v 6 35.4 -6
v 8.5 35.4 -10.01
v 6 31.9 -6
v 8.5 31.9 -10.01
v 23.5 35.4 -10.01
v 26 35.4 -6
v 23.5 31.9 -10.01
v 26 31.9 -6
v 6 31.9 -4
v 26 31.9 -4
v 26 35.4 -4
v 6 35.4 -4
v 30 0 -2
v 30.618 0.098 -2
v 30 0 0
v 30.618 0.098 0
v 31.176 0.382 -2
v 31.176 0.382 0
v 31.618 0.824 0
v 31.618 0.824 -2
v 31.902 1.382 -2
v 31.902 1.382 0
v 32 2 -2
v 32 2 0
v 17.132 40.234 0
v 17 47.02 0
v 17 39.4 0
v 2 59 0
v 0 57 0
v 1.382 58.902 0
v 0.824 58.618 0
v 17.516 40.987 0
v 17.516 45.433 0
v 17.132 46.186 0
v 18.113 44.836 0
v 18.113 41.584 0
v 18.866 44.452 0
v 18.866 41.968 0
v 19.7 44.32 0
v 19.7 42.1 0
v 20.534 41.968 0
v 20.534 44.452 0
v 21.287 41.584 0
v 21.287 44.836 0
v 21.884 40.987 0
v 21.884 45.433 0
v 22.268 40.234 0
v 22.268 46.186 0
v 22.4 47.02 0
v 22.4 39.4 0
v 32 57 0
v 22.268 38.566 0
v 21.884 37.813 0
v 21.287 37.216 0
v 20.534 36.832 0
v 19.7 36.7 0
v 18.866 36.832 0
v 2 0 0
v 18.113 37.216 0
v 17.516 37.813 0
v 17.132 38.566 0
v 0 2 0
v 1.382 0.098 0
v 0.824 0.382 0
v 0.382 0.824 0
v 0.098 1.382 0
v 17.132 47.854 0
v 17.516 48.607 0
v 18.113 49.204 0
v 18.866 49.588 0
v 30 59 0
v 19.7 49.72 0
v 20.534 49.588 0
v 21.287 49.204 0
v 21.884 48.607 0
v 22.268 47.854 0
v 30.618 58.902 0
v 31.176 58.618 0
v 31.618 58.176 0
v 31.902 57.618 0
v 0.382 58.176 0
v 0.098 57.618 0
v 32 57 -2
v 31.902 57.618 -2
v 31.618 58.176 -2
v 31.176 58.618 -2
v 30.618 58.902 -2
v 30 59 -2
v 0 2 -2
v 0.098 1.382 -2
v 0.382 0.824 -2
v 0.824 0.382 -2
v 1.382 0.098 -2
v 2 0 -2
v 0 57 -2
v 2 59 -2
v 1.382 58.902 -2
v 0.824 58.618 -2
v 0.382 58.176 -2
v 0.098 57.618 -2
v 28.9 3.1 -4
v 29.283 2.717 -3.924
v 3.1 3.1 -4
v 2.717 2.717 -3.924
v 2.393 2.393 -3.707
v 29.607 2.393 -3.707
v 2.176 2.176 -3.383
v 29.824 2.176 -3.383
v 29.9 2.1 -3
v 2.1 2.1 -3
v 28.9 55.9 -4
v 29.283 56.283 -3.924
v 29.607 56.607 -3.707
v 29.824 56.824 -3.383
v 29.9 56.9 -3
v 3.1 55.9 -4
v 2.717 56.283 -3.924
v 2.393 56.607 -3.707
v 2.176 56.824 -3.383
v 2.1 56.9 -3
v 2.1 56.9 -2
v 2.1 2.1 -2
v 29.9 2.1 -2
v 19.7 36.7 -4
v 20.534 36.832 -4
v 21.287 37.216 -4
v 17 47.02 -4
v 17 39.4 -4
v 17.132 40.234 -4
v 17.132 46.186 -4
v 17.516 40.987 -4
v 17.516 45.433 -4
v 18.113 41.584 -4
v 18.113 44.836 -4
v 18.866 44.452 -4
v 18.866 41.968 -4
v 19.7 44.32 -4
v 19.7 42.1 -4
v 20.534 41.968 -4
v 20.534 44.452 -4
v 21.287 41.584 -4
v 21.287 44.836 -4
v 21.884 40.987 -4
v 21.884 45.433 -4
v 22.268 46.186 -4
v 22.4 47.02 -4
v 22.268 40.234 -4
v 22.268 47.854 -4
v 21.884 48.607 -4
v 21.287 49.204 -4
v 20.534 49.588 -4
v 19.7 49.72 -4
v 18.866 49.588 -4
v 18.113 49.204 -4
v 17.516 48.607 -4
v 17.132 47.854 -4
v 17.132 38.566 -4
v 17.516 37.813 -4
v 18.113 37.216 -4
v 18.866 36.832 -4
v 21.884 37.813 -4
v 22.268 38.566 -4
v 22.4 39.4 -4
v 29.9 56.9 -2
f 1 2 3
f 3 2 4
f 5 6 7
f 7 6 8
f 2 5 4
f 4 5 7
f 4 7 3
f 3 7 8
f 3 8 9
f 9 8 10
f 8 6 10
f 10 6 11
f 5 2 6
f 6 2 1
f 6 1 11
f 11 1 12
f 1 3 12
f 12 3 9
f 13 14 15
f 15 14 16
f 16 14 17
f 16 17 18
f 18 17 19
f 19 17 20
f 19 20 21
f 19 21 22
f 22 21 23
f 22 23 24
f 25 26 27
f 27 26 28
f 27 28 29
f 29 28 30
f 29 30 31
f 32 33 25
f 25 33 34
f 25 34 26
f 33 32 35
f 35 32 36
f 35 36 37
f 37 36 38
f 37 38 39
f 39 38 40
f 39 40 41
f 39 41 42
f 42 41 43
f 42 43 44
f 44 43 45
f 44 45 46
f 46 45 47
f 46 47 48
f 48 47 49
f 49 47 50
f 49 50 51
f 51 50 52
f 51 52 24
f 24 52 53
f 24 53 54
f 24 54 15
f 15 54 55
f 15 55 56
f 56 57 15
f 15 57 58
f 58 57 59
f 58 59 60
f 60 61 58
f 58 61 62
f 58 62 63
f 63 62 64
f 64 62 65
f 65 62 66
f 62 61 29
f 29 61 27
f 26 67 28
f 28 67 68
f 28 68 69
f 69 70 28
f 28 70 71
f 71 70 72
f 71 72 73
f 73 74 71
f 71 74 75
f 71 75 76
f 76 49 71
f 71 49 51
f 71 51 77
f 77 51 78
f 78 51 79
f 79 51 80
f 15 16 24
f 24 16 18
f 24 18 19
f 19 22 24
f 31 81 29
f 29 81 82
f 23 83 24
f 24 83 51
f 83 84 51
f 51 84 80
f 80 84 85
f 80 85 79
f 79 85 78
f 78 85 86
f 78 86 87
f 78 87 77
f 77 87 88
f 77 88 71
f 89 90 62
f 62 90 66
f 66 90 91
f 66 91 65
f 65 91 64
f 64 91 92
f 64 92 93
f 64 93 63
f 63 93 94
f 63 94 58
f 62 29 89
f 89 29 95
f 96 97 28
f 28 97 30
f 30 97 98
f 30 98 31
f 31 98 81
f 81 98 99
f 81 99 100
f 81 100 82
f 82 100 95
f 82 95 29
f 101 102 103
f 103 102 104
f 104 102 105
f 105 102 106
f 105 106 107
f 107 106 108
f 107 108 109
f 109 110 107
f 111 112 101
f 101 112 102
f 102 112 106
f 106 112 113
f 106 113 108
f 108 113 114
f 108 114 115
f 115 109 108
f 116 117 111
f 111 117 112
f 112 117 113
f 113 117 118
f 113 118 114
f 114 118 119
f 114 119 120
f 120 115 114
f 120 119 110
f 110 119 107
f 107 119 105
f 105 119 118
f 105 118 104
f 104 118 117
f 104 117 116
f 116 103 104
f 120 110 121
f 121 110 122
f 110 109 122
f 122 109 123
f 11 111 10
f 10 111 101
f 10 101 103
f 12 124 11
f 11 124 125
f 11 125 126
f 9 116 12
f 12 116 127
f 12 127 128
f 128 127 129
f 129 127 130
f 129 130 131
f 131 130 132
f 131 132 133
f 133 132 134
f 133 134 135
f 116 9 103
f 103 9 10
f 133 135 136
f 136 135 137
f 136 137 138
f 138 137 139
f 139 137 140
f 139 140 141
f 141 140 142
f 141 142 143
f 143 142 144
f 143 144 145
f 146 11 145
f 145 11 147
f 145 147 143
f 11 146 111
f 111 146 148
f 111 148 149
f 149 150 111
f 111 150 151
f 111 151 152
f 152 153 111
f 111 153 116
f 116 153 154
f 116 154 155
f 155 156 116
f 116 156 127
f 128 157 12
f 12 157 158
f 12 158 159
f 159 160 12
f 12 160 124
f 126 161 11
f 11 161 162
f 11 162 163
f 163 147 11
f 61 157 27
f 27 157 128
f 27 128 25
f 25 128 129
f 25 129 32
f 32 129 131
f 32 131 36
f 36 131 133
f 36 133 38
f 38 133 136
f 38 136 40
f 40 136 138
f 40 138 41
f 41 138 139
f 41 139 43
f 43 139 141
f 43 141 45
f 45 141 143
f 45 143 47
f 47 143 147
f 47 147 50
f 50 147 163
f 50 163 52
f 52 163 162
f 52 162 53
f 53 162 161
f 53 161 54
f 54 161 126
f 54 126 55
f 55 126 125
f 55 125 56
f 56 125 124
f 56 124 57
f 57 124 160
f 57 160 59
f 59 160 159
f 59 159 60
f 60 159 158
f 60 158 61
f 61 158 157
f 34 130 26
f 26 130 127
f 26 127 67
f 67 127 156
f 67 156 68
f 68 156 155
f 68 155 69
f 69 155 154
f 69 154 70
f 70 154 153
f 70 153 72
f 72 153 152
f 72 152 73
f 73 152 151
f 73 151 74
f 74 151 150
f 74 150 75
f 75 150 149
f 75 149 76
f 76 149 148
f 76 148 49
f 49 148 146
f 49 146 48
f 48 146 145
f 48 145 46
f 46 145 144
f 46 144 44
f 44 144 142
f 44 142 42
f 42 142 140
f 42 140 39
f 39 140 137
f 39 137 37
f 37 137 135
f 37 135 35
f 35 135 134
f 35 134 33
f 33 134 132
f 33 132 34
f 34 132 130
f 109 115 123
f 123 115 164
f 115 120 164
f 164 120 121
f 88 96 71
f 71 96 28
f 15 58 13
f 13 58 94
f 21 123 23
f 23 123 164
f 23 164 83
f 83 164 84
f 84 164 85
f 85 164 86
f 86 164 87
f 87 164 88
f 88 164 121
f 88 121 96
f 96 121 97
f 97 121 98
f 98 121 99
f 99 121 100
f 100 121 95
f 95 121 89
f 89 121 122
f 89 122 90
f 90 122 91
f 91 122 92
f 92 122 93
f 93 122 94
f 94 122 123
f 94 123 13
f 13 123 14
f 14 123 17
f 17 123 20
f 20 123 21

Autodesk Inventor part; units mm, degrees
ref_plane "YZ Plane" through (0, 0, 0) normal (1, 0, 0) x (0, 1, 0)
ref_plane "XZ Plane" through (0, 0, 0) normal (0, 1, 0) x (-1, 0, 0)
ref_plane "XY Plane" through (0, 0, 0) normal (0, 0, 1) x (1, 0, 0)
sketch "Skizze1" plane through (0, 0, 0) normal (0, 0, 1) x (1, 0, 0)
  line L0 (0, 0) -> (32, 0)
  line L1 (32, 0) -> (32, 59)
  line L2 (32, 59) -> (0, 59)
  line L3 (0, 59) -> (0, 0)
  dimension "d0" = 32
  dimension "d1" = 59
extrude "Extrusion1" add sketch "Skizze1" against normal blind 2
sketch "Skizze2" plane through (0, 0, -2) normal (0, 0, -1) x (-1, 0, 0)
  line L0 (-2.1, 2.1) -> (-29.9, 2.1)
  line L1 (-29.9, 2.1) -> (-29.9, 56.9)
  line L2 (-29.9, 56.9) -> (-2.1, 56.9)
  line L3 (-2.1, 56.9) -> (-2.1, 2.1)
  line L4 (0, 0) -> (0, 59) construction
  line L5 (-32, 0) -> (0, 0) construction
  point P0 (-2.1, 29.5)
  point P1 (0, 29.5)
  point P2 (-16, 2.1)
  point P3 (-16, 0)
  dimension "d4" = 2.1
  dimension "d5" = 2.1
extrude "Extrusion2" add sketch "Skizze2" along normal blind 2
sketch "Skizze3" plane through (0, 0, -4) normal (0, 0, -1) x (-1, 0, 0)
  circle A0 centre (-19.7, 39.4) radius 2.7
  line L0 (-32, 0) -> (0, 0) projected
  line L1 (-2.1, 2.1) -> (-2.1, 56.9) projected
  line L2 (-29.9, 56.9) -> (-29.9, 2.1) projected
  circle A1 centre (-19.7, 47.02) radius 2.7
  dimension "d8" = 5.4
  dimension "d9" = 39.4
  dimension "d11" = 10.2
  dimension "d12" = 5.4
  dimension "d13" = 7.62
extrude "Extrusion3" cut sketch "Skizze3" against normal through all
fillet "Rundung1" radius 1 4 edges at (16, 56.9, -4) (29.9, 29.5, -4) (2.1, 29.5, -4) (16, 2.1, -4)
fillet "Rundung2" radius 2 4 edges at (0, 59, -1) (0, 0, -1) (32, 59, -1) (32, 0, -1)
sketch "Skizze4" plane through (0, 0, -4) normal (0, 0, -1) x (-1, 0, 0)
  line L0 (-26, 31.9) -> (-6, 31.9)
  line L1 (-6, 31.9) -> (-6, 35.4)
  line L2 (-6, 35.4) -> (-26, 35.4)
  line L3 (-26, 35.4) -> (-26, 31.9)
  line L4 (-29.9, 2.1) -> (-2.1, 2.1) projected
  point P0 (0, 0)
  point P1 (-16, 31.9)
  point P2 (-16, 2.1)
  dimension "d18" = 20
  dimension "d19" = 3.5
  dimension "d20" = 29.8
extrude "Extrusion4" add sketch "Skizze4" along normal blind 6.01
sketch "Skizze6" plane through (6, 31.9, -4) normal (0, -1, 0) x (1, 0, 0)
  line L0 (0, -6.01) -> (2.5, -6.01)
  line L1 (2.5, -6.01) -> (0, -2)
  line L2 (0, -2) -> (0, -6.01)
  line L3 (20, 0) -> (0, 0) construction
  line L4 (10, 0) -> (10, 6.9424) construction
  line L5 (20, -6.01) -> (17.5, -6.01)
  line L6 (17.5, -6.01) -> (20, -2)
  line L7 (20, -2) -> (20, -6.01)
  point P0 (-6, 4)
  dimension "d29" = 2
  dimension "d30" = 2.5
  dimension "d31" = 4.01
extrude "Extrusion5" cut sketch "Skizze6" against normal up to surface (3.5 mm away)
properties part number "top"
